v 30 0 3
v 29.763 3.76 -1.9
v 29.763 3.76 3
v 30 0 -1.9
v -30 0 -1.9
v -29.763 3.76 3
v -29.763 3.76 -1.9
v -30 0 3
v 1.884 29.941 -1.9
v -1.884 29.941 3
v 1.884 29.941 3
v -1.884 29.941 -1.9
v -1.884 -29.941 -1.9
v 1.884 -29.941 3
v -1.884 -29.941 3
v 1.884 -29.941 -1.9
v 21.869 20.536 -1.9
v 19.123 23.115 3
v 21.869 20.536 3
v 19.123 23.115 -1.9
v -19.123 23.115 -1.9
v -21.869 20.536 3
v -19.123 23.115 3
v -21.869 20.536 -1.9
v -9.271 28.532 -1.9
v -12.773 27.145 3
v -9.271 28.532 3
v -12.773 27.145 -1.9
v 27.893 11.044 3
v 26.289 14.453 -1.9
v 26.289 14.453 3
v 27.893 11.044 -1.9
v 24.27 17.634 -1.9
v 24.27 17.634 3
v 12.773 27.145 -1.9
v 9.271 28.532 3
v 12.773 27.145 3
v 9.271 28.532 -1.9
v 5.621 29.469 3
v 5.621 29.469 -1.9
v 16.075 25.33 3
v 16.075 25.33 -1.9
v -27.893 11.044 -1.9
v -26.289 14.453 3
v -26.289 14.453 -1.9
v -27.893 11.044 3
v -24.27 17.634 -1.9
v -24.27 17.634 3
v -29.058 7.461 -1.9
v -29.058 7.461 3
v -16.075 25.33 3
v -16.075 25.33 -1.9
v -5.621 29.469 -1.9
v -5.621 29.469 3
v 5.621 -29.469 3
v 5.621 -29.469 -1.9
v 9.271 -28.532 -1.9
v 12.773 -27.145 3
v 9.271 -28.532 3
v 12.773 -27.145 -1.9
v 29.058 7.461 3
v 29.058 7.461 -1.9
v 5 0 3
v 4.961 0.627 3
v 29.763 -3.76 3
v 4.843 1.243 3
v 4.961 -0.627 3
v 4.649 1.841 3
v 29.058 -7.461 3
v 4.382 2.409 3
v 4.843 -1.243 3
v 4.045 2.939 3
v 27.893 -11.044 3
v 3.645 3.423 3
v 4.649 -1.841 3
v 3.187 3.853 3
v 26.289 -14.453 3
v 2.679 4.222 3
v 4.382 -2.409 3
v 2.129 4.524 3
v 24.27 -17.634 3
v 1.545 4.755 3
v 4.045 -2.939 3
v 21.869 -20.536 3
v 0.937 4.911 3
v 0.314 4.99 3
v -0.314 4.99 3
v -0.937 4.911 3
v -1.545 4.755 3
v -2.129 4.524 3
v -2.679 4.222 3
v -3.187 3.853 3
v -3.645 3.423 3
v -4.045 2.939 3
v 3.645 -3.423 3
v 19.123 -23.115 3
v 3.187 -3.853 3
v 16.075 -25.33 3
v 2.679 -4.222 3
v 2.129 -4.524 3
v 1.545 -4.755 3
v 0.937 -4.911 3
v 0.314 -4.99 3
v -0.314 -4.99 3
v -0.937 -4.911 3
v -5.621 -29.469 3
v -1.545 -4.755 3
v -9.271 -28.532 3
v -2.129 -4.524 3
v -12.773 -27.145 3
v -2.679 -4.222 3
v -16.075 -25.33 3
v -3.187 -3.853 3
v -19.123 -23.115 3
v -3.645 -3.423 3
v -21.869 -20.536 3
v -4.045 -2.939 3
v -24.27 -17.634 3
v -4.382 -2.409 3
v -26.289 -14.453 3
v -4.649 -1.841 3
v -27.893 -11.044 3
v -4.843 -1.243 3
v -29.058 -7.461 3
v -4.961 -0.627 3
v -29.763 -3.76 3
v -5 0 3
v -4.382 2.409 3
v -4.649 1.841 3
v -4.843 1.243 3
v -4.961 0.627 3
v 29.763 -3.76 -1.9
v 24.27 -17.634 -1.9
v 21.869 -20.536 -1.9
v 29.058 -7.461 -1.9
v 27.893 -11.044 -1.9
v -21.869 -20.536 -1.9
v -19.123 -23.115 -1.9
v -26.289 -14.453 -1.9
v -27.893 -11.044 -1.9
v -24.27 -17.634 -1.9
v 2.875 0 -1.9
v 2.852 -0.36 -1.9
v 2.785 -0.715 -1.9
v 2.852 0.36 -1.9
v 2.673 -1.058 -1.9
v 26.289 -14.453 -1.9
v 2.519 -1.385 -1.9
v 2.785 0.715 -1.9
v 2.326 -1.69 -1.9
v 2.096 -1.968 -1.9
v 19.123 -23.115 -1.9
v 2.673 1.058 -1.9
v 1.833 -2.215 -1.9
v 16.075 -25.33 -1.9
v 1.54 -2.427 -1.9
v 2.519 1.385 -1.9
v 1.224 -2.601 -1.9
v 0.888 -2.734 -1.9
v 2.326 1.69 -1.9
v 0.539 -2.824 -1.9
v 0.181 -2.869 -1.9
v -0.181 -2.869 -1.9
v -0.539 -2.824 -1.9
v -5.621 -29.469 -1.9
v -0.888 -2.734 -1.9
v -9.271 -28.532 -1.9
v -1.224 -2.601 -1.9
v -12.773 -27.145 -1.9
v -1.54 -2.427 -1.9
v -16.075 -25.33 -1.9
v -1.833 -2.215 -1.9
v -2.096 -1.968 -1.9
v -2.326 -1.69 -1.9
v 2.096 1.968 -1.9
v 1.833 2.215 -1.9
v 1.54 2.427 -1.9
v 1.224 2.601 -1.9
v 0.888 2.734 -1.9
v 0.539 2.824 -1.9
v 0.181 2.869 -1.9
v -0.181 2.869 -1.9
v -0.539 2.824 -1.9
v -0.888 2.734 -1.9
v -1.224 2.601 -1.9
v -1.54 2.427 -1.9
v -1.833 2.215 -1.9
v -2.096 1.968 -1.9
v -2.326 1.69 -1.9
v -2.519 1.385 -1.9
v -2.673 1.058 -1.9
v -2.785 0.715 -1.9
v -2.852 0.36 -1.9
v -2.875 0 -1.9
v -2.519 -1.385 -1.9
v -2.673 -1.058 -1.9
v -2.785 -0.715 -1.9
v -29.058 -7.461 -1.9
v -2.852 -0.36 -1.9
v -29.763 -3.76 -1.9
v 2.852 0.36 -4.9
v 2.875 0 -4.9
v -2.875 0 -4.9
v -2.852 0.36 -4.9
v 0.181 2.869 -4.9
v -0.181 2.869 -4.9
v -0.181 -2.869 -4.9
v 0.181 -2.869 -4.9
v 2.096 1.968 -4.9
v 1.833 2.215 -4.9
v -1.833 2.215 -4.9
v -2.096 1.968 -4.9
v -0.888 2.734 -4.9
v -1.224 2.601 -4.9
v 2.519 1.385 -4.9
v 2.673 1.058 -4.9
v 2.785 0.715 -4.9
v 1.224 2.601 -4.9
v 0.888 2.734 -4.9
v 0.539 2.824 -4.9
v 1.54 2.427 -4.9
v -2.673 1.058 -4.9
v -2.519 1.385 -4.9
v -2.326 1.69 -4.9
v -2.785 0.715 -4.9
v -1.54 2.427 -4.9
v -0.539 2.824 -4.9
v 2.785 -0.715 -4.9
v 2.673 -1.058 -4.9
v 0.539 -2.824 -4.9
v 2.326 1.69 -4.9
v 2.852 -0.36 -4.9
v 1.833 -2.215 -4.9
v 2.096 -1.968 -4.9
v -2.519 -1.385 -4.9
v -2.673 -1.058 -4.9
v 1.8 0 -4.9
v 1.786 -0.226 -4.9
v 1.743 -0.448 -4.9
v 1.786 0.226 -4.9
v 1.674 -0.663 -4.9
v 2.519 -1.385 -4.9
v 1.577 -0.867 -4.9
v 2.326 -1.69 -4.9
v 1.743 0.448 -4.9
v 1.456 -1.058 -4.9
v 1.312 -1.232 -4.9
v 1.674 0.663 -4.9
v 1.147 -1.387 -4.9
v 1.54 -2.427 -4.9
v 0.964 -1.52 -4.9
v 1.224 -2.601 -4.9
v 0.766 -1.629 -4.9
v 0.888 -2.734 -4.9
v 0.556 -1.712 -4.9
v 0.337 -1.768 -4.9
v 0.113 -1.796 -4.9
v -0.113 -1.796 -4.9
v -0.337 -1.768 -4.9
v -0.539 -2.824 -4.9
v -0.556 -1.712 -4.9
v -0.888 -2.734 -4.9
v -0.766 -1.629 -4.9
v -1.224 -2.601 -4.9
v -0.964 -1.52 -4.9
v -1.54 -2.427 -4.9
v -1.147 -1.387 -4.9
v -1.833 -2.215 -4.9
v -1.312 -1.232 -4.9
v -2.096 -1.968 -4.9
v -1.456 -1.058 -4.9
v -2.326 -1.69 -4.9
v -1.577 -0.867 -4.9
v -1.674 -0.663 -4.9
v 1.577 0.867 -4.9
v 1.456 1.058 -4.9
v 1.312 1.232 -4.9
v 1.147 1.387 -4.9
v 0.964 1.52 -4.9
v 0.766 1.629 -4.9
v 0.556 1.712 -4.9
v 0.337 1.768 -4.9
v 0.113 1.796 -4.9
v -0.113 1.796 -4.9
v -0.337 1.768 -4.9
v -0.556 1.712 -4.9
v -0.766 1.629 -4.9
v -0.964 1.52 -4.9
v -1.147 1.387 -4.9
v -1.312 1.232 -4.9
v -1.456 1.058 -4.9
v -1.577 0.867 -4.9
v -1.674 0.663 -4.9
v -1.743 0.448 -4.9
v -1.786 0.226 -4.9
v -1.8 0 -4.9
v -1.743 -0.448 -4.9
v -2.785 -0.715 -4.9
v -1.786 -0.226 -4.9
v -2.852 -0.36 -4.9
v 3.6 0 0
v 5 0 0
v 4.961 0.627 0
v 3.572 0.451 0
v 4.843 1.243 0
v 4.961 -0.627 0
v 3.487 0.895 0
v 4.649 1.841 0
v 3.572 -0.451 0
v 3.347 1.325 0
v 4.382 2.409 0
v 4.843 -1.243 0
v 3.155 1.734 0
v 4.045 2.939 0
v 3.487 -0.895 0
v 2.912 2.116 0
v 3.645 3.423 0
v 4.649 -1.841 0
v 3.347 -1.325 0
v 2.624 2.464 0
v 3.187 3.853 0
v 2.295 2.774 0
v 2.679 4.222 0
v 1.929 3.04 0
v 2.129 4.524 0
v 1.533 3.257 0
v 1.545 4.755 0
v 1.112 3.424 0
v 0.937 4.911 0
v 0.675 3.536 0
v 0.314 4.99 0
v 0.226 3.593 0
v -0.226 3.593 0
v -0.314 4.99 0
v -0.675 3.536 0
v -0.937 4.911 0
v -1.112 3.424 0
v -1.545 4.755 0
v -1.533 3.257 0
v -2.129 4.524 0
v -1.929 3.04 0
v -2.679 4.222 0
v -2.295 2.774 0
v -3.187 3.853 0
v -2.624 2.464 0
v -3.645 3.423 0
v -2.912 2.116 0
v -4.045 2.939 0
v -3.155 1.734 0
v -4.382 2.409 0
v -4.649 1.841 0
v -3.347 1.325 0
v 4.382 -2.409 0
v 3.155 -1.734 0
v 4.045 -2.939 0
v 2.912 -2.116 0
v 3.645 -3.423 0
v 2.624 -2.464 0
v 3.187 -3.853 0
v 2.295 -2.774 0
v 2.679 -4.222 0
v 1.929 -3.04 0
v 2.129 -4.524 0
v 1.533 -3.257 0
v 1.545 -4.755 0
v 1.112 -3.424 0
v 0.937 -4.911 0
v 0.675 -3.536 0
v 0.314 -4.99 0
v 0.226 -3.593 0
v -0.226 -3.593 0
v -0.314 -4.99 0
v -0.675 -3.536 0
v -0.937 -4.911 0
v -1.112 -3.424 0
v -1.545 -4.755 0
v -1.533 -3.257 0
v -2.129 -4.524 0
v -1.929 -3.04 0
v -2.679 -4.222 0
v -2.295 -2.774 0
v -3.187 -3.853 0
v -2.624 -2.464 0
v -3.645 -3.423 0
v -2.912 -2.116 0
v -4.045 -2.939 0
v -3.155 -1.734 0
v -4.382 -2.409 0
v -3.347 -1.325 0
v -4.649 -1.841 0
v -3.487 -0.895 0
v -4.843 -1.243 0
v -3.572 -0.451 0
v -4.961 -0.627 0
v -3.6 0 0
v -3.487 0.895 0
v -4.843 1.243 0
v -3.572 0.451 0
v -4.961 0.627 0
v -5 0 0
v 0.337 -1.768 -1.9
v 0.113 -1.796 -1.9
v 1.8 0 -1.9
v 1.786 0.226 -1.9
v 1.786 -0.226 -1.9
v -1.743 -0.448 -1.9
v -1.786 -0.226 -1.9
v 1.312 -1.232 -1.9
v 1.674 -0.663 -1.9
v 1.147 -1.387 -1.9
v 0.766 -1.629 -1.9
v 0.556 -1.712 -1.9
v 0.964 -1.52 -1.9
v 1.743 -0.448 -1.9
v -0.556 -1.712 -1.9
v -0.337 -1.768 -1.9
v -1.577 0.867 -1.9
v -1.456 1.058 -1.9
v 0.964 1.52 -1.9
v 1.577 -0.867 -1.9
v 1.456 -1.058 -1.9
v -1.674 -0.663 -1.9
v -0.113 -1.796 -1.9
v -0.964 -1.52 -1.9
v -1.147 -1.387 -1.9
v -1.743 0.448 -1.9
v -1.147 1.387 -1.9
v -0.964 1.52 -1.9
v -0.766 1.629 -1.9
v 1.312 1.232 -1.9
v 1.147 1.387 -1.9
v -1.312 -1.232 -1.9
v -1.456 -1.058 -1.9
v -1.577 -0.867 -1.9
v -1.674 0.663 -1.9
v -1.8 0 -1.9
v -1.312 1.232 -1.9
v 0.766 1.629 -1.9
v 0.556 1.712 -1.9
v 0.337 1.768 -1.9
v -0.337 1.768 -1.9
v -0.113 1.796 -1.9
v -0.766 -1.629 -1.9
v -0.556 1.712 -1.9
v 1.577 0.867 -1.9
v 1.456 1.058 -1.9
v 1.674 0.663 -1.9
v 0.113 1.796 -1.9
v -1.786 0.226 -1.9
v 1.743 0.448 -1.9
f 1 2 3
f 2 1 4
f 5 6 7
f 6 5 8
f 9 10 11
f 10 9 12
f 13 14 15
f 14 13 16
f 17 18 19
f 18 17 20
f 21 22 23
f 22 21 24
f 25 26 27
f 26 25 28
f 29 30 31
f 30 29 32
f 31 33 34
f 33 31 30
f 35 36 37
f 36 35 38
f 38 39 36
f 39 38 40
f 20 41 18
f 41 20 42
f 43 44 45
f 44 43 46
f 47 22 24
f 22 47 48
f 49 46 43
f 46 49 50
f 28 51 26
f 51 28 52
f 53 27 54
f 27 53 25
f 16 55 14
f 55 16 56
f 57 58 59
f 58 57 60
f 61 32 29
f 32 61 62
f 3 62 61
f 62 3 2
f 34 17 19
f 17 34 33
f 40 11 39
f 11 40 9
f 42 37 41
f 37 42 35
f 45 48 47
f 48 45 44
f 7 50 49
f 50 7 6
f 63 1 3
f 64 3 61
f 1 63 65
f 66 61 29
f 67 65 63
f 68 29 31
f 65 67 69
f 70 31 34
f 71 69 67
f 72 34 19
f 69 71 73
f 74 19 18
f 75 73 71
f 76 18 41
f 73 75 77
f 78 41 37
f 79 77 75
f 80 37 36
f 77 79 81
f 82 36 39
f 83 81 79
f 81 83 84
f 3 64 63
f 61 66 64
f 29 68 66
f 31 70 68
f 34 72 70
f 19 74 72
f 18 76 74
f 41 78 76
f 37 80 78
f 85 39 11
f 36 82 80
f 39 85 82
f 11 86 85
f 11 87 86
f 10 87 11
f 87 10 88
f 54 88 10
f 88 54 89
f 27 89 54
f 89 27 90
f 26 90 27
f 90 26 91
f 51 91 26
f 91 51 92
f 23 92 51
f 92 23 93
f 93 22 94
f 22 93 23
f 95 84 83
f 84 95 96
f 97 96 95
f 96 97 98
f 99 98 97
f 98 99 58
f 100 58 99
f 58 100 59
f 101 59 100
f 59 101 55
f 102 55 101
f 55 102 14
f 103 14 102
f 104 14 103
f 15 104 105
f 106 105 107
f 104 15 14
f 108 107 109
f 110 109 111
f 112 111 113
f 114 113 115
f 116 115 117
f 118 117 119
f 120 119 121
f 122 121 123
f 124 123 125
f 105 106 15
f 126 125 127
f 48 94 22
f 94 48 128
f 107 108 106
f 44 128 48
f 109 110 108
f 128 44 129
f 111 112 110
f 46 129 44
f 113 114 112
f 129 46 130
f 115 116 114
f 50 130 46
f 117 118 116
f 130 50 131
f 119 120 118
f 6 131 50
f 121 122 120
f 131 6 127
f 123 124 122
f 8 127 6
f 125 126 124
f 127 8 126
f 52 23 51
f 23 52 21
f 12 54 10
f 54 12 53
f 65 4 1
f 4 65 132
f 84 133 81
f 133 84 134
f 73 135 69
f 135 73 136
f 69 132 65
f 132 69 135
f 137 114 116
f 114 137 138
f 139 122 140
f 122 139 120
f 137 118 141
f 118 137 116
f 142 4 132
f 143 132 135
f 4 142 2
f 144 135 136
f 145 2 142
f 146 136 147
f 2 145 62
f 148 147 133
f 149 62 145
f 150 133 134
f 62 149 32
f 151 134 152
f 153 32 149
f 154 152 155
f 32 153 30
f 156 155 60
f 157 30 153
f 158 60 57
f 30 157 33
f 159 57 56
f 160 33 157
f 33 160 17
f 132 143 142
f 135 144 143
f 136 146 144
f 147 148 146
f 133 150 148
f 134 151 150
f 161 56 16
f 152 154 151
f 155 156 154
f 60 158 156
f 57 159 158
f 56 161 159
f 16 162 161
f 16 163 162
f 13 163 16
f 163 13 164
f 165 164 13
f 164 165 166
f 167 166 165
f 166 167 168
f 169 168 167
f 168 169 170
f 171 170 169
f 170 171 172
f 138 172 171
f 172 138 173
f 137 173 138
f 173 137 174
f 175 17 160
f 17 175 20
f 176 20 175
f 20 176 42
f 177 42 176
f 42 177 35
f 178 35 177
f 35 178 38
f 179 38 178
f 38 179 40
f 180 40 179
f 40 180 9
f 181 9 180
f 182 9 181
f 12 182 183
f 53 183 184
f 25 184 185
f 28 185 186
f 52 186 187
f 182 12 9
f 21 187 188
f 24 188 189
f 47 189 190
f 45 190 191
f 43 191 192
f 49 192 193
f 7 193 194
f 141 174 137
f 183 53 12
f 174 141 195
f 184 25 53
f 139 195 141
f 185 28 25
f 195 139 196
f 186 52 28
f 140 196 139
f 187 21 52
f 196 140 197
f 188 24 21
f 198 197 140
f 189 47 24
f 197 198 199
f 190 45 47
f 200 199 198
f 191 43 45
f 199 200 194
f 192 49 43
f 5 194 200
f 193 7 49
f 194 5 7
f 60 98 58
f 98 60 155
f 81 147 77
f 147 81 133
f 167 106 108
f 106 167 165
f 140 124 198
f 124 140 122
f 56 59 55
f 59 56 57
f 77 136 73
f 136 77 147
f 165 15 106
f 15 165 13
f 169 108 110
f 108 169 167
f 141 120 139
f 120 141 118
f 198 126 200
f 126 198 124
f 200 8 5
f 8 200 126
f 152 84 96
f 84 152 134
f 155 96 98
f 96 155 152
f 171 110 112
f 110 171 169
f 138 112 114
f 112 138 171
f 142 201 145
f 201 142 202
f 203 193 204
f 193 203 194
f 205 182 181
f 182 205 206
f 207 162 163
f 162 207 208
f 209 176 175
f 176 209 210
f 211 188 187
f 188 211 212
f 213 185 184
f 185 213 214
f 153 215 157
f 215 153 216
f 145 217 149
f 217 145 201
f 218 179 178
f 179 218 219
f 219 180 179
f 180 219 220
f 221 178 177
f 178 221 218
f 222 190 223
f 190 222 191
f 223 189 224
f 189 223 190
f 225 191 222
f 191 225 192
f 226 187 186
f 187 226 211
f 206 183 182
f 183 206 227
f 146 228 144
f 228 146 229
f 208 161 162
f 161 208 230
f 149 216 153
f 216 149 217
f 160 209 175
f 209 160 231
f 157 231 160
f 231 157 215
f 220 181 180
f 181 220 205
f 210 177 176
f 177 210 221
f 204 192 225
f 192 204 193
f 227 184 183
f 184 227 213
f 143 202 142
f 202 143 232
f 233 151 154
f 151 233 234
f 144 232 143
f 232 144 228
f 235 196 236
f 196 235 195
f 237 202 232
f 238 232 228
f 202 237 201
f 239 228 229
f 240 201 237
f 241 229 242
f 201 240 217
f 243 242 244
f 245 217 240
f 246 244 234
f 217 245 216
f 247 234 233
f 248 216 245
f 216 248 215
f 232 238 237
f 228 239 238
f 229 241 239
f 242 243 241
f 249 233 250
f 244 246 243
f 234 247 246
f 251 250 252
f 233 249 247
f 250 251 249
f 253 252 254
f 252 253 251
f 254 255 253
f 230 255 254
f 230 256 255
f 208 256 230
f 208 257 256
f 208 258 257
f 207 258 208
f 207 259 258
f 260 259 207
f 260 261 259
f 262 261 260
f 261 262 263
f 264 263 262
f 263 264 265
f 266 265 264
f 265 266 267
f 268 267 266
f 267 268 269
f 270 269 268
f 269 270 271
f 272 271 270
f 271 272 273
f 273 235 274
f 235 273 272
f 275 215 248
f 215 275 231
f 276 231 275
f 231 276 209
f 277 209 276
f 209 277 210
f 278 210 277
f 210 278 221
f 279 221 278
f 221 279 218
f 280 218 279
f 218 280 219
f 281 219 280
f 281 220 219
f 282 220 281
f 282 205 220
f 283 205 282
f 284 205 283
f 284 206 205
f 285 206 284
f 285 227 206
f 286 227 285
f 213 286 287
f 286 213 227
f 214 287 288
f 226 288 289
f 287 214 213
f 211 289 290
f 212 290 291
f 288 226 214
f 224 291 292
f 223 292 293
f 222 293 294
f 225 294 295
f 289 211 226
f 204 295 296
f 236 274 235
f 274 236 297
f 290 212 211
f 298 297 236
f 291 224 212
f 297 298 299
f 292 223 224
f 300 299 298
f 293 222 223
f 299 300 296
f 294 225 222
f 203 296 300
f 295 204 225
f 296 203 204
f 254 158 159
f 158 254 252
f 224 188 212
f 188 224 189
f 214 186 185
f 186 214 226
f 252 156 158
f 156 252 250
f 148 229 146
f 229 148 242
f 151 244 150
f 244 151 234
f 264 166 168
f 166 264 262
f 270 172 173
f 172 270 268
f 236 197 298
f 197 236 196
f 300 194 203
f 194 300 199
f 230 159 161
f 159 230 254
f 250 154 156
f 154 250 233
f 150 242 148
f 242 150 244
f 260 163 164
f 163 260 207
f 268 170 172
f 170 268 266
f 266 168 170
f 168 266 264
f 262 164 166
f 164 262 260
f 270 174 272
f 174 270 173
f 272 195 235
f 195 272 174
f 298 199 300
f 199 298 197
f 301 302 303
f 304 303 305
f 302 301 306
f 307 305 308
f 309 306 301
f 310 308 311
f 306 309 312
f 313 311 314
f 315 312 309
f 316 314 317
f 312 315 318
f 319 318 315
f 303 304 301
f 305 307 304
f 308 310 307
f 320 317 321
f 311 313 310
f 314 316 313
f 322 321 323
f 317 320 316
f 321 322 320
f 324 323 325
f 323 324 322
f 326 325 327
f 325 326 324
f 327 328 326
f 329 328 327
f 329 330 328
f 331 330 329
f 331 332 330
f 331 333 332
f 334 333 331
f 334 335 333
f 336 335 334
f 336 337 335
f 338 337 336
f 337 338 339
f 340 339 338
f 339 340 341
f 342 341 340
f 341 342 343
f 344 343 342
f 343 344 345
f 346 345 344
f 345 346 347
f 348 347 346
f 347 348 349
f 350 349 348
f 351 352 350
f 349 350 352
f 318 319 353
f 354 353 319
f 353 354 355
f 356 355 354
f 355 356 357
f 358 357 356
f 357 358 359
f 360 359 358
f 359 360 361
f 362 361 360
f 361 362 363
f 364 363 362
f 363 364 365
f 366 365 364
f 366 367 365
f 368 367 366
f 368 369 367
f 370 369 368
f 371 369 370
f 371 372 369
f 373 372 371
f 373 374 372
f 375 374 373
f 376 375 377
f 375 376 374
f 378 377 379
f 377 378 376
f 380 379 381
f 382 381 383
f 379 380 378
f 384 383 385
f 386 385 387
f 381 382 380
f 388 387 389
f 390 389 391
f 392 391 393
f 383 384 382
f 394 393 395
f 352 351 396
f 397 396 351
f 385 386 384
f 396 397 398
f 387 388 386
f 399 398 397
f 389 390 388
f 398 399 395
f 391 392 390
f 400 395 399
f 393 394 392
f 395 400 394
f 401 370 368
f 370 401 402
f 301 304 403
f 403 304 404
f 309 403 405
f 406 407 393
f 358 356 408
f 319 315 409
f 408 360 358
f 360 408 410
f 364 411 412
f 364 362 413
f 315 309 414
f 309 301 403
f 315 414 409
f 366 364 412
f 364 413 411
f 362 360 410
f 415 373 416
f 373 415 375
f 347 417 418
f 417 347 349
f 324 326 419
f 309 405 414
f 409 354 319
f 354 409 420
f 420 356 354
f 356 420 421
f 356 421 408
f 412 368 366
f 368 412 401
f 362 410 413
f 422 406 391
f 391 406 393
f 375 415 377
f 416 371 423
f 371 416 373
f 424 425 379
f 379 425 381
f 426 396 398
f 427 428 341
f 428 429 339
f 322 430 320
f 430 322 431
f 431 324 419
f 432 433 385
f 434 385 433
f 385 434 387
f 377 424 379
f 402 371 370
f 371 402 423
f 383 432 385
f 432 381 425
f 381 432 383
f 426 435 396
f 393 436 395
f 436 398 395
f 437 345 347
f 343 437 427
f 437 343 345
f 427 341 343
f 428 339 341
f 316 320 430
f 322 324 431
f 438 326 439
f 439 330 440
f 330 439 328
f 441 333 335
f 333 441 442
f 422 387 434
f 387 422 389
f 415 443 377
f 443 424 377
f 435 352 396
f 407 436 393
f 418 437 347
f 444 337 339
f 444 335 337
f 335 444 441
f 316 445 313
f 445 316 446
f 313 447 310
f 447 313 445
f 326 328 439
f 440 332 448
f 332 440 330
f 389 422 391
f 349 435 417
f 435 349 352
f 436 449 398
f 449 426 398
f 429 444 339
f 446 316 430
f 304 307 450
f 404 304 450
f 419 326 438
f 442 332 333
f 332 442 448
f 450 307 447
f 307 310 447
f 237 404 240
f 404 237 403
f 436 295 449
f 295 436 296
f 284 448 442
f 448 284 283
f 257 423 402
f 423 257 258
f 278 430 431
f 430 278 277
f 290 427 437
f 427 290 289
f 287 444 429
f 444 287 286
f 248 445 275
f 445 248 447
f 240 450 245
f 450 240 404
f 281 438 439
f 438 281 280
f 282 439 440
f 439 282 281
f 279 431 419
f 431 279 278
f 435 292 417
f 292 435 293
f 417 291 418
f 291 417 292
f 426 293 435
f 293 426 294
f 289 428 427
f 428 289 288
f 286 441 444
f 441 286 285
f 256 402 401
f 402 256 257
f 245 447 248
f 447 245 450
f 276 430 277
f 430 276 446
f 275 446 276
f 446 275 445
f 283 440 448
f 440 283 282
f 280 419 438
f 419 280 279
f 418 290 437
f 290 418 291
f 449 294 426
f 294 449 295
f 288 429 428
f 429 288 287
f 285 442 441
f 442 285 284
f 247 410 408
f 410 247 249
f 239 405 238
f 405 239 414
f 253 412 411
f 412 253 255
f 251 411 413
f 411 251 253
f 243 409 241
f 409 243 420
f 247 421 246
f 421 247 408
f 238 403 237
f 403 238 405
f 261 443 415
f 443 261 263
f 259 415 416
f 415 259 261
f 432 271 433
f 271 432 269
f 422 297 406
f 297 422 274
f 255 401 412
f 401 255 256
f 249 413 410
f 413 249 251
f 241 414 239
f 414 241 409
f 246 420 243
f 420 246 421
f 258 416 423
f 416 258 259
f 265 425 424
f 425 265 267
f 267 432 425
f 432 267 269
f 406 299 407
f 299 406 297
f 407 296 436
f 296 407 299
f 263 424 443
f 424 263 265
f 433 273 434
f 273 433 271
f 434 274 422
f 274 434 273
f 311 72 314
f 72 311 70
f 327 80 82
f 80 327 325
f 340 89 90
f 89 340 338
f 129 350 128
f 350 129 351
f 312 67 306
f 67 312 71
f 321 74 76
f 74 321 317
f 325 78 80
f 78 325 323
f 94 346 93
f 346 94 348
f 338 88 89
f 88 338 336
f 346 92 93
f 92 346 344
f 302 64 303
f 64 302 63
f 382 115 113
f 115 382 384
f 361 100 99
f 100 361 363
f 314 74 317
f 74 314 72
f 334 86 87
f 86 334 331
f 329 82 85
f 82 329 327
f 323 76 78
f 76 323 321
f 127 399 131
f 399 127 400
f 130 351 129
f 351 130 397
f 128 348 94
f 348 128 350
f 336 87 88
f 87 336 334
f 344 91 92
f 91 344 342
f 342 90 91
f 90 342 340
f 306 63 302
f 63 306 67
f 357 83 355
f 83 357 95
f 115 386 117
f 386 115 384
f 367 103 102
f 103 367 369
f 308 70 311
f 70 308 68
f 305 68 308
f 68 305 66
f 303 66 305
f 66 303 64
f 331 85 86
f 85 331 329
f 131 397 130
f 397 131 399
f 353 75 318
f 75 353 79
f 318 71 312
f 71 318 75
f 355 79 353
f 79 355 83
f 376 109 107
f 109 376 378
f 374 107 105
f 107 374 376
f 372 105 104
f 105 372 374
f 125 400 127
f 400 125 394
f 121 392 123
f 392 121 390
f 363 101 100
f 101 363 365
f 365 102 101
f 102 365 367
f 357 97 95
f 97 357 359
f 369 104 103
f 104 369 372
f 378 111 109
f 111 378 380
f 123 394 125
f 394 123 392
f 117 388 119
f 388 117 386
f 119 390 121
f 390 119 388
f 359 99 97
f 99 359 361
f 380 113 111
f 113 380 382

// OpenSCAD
$fn = 50;

difference() {
	union() {
		translate(v = [0, 0, -1.9000000000000004]) {
			cylinder(h = 4.9, r = 30.0);
		}
		#translate(v = [0, 0, -4.9]) {
			cylinder(h = 4.9, r = 2.875);
		}
	}
	union() {
		translate(v = [0, 0, 0]) {
			rotate(a = [0, 0, 0]) {
				difference() {
					union() {
						translate(v = [0, 0, -4.9]) {
							cylinder(h = 4.9, r = 1.5);
						}
						translate(v = [0, 0, -1.9]) {
							cylinder(h = 1.9, r1 = 1.8, r2 = 3.6);
						}
						translate(v = [0, 0, -4.9]) {
							cylinder(h = 4.9, r = 1.8);
						}
						translate(v = [0, 0, -4.9]) {
							cylinder(h = 4.9, r = 1.5);
						}
					}
					union();
				}
			}
		}
		#cylinder(h = 3, r = 5.0);
	}
}
